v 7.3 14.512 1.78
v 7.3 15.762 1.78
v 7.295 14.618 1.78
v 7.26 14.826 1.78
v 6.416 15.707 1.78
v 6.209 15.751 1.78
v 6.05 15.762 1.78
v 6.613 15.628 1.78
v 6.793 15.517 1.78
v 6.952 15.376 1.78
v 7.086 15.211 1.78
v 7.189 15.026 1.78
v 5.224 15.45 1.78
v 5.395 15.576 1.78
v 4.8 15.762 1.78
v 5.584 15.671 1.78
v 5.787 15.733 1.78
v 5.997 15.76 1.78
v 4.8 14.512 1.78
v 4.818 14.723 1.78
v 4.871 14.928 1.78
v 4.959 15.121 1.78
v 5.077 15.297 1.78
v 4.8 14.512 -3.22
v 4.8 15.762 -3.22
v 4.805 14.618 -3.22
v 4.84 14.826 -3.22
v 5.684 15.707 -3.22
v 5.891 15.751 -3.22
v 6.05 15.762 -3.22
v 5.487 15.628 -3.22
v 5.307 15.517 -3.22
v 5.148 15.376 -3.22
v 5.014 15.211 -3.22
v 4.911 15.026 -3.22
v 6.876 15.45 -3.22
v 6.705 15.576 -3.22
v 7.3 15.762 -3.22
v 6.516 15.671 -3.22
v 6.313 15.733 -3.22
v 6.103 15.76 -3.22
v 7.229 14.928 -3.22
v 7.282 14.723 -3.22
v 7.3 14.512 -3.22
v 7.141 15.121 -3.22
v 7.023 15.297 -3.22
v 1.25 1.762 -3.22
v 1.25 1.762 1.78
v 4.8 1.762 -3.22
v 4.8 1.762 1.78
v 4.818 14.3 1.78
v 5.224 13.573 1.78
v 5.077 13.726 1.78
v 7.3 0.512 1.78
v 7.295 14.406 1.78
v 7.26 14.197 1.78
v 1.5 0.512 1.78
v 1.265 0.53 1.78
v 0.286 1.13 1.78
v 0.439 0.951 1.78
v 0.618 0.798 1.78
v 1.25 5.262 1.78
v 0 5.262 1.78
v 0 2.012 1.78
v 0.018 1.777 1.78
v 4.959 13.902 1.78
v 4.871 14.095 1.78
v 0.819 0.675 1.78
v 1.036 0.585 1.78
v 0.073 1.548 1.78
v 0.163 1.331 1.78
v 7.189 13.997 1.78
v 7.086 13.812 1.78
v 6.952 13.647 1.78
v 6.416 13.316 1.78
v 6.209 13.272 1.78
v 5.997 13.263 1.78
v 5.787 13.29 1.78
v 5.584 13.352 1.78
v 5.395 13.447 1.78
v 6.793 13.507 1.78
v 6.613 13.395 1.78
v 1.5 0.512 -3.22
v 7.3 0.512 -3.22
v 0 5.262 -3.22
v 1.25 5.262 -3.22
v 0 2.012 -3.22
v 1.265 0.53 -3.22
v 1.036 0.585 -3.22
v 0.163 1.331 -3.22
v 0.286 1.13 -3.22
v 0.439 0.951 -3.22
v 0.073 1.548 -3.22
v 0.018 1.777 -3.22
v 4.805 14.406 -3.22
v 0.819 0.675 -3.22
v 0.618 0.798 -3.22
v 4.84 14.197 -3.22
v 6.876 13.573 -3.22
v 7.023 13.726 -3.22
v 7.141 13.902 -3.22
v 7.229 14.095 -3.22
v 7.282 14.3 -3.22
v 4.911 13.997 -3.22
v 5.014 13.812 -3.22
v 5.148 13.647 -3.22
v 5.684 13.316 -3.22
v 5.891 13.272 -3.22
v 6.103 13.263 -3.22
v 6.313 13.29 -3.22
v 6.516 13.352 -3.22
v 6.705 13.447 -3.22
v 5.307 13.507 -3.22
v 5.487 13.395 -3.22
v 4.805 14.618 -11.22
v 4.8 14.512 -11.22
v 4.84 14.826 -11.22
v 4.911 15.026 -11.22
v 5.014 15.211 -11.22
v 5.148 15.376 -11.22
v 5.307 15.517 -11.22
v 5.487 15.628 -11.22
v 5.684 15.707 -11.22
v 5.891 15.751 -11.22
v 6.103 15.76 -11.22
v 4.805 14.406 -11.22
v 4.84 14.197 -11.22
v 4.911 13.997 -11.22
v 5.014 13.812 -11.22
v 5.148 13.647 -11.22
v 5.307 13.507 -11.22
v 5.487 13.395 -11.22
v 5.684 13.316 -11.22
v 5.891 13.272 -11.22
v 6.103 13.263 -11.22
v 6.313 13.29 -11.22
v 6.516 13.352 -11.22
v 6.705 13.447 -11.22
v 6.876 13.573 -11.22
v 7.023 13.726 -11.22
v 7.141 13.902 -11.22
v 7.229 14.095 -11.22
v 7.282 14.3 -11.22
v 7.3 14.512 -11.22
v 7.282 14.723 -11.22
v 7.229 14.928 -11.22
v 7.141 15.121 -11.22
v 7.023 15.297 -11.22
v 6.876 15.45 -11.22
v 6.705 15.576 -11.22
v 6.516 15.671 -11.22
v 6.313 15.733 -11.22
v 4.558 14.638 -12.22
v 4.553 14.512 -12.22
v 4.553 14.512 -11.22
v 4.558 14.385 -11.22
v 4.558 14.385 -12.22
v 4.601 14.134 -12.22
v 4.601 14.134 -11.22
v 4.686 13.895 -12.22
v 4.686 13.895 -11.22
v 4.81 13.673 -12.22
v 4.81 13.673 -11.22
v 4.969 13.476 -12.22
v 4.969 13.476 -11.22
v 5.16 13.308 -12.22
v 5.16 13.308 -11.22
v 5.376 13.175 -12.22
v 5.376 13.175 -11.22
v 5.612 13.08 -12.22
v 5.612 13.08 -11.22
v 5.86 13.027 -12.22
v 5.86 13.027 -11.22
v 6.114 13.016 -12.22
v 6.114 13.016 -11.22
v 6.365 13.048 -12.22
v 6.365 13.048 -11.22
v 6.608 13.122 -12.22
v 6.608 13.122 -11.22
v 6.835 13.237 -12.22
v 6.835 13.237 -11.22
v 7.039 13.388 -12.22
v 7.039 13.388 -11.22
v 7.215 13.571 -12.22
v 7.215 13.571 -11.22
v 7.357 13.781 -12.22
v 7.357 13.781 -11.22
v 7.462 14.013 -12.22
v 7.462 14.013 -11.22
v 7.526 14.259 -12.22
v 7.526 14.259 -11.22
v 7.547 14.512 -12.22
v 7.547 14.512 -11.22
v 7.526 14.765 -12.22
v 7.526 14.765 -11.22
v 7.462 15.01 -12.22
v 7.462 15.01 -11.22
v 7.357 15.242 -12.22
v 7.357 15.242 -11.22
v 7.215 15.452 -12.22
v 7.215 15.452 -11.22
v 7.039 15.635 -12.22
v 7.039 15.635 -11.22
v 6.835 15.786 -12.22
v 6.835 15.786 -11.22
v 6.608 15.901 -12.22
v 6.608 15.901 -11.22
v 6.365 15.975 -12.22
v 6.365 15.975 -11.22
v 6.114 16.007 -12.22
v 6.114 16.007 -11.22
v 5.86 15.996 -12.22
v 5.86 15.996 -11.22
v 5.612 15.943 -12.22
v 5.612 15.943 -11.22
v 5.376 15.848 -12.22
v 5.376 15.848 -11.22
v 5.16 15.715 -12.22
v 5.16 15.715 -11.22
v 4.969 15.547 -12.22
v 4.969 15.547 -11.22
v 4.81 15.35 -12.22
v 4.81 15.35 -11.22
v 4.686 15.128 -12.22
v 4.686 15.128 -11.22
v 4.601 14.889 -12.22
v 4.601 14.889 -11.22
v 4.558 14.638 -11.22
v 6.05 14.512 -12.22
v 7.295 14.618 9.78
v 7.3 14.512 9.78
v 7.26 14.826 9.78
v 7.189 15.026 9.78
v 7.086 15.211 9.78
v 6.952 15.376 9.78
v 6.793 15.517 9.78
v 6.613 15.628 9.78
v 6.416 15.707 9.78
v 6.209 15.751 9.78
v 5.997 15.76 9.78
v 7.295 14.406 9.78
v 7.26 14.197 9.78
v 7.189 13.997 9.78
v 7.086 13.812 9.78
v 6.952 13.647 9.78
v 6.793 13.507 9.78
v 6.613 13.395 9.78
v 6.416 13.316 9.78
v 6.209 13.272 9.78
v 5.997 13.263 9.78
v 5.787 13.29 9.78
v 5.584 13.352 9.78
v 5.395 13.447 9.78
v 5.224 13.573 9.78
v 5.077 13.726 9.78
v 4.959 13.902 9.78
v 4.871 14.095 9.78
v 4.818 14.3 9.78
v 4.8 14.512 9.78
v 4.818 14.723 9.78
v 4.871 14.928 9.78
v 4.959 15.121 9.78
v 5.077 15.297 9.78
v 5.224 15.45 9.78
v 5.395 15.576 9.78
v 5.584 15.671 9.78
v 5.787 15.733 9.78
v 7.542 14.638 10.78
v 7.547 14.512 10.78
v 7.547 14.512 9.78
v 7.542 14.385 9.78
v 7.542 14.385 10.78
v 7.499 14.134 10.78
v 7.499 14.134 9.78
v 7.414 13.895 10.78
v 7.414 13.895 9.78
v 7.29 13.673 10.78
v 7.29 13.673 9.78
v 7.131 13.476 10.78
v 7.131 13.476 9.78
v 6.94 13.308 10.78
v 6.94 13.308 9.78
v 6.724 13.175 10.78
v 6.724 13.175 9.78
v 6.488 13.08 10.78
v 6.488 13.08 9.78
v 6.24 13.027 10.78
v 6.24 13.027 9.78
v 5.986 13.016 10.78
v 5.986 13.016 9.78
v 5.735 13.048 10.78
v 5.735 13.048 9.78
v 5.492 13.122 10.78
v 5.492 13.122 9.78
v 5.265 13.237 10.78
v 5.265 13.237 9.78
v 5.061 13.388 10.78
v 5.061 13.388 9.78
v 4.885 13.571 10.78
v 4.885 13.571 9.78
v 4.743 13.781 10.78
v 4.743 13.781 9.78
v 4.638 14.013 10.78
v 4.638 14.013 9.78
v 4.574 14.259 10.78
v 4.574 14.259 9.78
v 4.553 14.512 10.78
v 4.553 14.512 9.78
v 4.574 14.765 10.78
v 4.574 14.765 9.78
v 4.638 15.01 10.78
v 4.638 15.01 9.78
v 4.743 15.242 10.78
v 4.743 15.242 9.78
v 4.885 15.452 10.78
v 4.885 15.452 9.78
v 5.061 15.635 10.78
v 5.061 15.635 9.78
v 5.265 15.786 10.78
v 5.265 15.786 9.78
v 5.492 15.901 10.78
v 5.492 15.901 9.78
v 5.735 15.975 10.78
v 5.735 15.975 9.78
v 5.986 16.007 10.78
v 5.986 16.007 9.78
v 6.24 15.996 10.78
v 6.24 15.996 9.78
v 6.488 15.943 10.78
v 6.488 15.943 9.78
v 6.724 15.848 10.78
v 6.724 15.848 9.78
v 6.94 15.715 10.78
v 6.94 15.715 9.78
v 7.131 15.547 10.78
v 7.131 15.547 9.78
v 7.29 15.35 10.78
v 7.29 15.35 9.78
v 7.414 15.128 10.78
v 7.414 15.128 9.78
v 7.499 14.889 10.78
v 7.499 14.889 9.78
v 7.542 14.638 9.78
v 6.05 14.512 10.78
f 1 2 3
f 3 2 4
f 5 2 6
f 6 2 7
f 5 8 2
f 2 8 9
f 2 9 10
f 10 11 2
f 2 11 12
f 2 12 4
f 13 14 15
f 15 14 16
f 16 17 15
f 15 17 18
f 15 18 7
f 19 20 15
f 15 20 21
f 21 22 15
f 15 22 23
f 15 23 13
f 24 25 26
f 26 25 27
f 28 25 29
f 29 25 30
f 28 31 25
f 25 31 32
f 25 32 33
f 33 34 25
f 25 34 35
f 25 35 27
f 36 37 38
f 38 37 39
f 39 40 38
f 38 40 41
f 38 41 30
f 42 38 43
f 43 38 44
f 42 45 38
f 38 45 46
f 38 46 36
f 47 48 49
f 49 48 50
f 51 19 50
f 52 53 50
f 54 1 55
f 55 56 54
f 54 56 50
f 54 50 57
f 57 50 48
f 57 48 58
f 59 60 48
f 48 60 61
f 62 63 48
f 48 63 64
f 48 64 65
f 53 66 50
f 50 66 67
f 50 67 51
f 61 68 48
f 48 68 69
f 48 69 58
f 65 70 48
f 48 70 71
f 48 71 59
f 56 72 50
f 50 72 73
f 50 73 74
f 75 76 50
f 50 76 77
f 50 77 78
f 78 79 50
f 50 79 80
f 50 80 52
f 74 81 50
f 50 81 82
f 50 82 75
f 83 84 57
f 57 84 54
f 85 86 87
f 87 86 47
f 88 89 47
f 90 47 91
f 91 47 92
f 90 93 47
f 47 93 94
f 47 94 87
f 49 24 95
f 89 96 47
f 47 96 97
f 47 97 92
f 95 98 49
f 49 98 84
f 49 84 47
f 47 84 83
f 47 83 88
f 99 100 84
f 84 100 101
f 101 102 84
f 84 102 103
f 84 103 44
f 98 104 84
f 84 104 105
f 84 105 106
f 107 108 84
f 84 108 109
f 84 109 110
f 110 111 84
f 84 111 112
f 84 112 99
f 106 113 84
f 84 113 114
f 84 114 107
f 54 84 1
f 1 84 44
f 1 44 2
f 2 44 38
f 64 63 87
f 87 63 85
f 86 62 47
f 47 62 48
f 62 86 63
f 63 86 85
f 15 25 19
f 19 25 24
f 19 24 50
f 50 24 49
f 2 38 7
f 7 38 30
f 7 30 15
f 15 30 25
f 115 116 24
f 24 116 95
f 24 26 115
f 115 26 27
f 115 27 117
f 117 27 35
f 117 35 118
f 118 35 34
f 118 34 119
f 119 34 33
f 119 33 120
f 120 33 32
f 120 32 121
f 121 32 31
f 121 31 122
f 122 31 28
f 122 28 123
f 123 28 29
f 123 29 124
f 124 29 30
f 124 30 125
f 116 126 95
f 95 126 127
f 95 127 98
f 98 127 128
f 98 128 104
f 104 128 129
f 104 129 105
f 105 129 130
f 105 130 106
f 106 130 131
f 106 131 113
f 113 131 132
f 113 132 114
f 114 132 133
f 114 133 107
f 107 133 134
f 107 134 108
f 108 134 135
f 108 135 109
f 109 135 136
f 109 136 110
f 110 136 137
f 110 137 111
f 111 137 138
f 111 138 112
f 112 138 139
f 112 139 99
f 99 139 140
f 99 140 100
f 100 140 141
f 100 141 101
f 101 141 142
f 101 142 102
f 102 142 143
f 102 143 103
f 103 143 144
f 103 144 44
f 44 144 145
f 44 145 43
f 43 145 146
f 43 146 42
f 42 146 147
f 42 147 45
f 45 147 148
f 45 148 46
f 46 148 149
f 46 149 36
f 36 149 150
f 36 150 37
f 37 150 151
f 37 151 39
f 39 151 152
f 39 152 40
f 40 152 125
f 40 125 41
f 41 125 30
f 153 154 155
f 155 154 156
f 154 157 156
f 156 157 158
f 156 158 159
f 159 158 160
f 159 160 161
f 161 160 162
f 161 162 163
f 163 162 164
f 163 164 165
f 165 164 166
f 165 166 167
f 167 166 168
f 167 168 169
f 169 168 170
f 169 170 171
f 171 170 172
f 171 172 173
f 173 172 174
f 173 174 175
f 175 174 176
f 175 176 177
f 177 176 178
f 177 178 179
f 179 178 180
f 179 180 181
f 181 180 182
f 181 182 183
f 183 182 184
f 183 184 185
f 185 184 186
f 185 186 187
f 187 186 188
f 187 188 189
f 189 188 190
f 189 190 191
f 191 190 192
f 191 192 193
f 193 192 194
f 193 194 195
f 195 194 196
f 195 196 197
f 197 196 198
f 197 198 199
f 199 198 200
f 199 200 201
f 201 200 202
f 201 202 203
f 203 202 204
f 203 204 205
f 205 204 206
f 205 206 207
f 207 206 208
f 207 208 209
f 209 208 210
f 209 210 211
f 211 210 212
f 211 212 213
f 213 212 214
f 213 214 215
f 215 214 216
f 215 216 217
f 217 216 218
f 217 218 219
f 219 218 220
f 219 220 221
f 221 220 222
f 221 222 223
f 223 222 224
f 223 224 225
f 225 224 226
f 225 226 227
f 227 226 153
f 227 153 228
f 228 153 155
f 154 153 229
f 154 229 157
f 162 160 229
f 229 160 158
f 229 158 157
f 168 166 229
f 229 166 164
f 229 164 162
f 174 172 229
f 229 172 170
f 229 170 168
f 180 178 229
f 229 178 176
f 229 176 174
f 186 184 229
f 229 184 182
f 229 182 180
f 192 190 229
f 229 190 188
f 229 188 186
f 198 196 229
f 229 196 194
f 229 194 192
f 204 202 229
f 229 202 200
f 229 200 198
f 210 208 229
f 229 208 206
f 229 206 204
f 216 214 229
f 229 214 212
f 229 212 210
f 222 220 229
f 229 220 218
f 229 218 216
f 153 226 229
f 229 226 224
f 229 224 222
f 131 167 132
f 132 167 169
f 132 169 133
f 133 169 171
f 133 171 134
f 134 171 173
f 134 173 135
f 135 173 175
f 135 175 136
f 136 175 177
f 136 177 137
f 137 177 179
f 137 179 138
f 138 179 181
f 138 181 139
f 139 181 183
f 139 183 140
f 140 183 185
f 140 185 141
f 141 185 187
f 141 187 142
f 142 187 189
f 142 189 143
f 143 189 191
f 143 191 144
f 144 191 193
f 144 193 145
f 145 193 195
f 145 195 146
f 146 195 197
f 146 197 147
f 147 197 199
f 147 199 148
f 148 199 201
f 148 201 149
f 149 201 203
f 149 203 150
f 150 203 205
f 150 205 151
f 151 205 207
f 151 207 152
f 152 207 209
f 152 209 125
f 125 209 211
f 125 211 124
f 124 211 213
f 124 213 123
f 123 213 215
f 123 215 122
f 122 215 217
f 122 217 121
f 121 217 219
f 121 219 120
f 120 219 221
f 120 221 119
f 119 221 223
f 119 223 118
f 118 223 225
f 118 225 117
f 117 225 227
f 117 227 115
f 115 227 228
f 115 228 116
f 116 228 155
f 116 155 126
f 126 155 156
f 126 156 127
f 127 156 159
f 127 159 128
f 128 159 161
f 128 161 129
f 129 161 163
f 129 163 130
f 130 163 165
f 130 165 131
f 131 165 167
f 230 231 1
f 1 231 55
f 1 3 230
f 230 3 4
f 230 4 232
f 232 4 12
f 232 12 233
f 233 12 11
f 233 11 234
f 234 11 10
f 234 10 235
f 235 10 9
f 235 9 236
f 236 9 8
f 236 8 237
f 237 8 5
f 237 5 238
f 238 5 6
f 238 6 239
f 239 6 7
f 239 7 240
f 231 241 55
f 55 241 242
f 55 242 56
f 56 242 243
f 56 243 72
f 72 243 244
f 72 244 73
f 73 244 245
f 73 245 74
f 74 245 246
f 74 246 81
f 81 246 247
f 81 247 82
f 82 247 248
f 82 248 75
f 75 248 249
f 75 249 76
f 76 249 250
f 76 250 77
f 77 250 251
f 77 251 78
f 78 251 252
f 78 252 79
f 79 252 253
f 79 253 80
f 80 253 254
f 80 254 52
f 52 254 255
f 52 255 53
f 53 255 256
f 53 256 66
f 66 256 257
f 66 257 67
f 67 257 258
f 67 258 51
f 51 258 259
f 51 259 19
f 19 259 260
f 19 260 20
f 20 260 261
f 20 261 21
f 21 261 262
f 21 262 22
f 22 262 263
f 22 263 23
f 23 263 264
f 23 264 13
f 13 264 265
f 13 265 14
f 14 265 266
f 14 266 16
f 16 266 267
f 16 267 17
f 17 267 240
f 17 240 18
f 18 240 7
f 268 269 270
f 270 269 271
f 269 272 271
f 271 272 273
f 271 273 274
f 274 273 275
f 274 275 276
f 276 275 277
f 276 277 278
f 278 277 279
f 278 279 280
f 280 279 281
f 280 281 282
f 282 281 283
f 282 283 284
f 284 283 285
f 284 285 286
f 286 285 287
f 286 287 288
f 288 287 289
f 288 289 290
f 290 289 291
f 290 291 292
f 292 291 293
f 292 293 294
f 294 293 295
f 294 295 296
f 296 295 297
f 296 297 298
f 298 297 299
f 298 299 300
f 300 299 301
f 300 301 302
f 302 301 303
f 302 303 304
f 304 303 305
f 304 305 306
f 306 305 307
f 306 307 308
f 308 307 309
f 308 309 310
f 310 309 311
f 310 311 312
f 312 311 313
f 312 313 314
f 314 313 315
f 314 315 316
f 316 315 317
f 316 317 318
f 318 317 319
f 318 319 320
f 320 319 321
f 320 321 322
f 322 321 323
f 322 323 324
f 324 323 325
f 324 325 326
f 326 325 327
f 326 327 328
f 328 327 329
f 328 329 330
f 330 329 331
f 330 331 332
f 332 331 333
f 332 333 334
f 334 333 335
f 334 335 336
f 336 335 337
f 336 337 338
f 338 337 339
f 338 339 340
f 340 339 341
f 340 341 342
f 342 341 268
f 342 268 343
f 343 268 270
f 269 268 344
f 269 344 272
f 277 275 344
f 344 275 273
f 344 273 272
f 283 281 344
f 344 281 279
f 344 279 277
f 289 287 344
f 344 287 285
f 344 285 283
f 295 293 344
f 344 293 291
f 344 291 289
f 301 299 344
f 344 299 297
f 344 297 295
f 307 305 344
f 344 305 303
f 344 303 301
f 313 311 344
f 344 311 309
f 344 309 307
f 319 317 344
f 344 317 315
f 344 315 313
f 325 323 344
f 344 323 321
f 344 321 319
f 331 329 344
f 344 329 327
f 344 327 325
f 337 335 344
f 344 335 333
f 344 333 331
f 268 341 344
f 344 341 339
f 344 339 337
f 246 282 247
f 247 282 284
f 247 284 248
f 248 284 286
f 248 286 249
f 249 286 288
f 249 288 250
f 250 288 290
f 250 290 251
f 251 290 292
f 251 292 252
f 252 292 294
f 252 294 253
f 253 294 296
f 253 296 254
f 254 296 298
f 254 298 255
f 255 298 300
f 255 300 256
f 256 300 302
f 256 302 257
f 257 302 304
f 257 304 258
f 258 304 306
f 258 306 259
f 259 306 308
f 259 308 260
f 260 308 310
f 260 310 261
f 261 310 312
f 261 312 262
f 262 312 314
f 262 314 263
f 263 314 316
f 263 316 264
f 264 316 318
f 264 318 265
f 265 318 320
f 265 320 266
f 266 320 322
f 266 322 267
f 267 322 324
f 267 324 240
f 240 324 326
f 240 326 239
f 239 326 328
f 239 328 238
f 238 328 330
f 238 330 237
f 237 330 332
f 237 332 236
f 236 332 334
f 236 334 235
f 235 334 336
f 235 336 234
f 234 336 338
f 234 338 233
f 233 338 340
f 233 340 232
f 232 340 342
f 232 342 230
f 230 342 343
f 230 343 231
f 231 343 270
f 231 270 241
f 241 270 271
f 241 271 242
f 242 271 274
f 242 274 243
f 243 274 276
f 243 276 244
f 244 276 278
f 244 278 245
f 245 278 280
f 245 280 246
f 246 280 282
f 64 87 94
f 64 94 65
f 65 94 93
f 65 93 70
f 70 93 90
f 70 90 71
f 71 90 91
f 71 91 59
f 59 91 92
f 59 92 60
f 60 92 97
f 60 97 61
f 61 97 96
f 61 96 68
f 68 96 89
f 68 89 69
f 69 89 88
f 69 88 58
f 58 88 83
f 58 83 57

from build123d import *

# Parameters (mm, degrees)
SKETCH1_W           = 5
SKETCH1_H           = 1.25
BOSS_EXTRUDE1_DEPTH = 7.3
SKETCH3_W           = 1.25
SKETCH3_H           = 5
BOSS_EXTRUDE2_DEPTH = 3.5
SKETCH4_W           = 2.5
SKETCH4_H           = 5
BOSS_EXTRUDE3_DEPTH = 14
BOSS_EXTRUDE4_DEPTH = 8
SKETCH6_R           = 1.49705526
BOSS_EXTRUDE5_DEPTH = 1
SKETCH7_R           = 1.25
BOSS_EXTRUDE6_DEPTH = 8
SKETCH8_R           = 1.49705526
BOSS_EXTRUDE7_DEPTH = 1
FILLET2_R           = 1.5


with BuildPart() as part:
    # Sketch1 → Boss-Extrude1 (new body)
    with BuildSketch(Plane(origin=(0, 0, 0), x_dir=(0, 0, -1), z_dir=(1, 0, 0))):
        with Locations((0.720440882, 1.136523046)):
            Rectangle(SKETCH1_W, SKETCH1_H)
    extrude(amount=BOSS_EXTRUDE1_DEPTH)

    # Sketch3 → Boss-Extrude2 (add)
    with BuildSketch(Plane(origin=(0, 1.761523046, 0), x_dir=(1, 0, 0), z_dir=(0, 1, 0))):
        with Locations((0.625, 0.720440882)):
            Rectangle(SKETCH3_W, SKETCH3_H)
    extrude(amount=BOSS_EXTRUDE2_DEPTH)

    # Sketch4 → Boss-Extrude3 (add)
    with BuildSketch(Plane(origin=(0, 1.761523046, 0), x_dir=(1, 0, 0), z_dir=(0, 1, 0))):
        with Locations((6.05, 0.720440882)):
            Rectangle(SKETCH4_W, SKETCH4_H)
    extrude(amount=BOSS_EXTRUDE3_DEPTH)

    # Sketch5 → Boss-Extrude4 (add)
    with BuildSketch(Plane(origin=(0, 0, -3.220440882), x_dir=(-1, 0, 0), z_dir=(0, 0, -1))):
        with BuildLine():
            ThreePointArc((-4.8, 14.511523046), (-5.166116524, 15.395406523), (-6.05, 15.761523046))
            ThreePointArc((-6.05, 15.761523046), (-6.52835429, 15.666372462), (-6.933883476, 15.395406523))
            Line((-6.933883476, 15.395406523), (-5.166116524, 13.62763957))
            ThreePointArc((-5.166116524, 13.62763957), (-4.895150584, 14.033168756), (-4.8, 14.511523046))
        make_face()
        with BuildLine():
            ThreePointArc((-6.933883476, 15.395406523), (-7.20484942, 14.989877325), (-7.3, 14.511523021))
            ThreePointArc((-7.3, 14.511523021), (-6.933883468, 13.627639561), (-6.05, 13.261523046))
            ThreePointArc((-6.05, 13.261523046), (-5.57164571, 13.35667363), (-5.166116524, 13.62763957))
            Line((-5.166116524, 13.62763957), (-6.933883476, 15.395406523))
        make_face()
    extrude(amount=BOSS_EXTRUDE4_DEPTH)

    # Sketch6 → Boss-Extrude5 (add)
    with BuildSketch(Plane(origin=(0, 0, -11.220440882), x_dir=(-1, 0, 0), z_dir=(0, 0, -1))):
        with Locations((-6.05, 14.511523046)):
            Circle(SKETCH6_R)
    extrude(amount=BOSS_EXTRUDE5_DEPTH)

    # Sketch7 → Boss-Extrude6 (add)
    with BuildSketch(Plane.XY.offset(1.779559118)):
        with Locations((6.05, 14.511523046)):
            Circle(SKETCH7_R)
    extrude(amount=BOSS_EXTRUDE6_DEPTH)

    # Sketch8 → Boss-Extrude7 (add)
    with BuildSketch(Plane.XY.offset(9.779559118)):
        with Locations((6.05, 14.511523046)):
            Circle(SKETCH8_R)
    extrude(amount=BOSS_EXTRUDE7_DEPTH)

    # Fillet2
    fillet2_edges = [part.edges().sort_by_distance(p)[0] for p in [
        (0, 0.511523046, -0.720440882),
    ]]
    fillet(fillet2_edges, radius=FILLET2_R)


solid = part.part
